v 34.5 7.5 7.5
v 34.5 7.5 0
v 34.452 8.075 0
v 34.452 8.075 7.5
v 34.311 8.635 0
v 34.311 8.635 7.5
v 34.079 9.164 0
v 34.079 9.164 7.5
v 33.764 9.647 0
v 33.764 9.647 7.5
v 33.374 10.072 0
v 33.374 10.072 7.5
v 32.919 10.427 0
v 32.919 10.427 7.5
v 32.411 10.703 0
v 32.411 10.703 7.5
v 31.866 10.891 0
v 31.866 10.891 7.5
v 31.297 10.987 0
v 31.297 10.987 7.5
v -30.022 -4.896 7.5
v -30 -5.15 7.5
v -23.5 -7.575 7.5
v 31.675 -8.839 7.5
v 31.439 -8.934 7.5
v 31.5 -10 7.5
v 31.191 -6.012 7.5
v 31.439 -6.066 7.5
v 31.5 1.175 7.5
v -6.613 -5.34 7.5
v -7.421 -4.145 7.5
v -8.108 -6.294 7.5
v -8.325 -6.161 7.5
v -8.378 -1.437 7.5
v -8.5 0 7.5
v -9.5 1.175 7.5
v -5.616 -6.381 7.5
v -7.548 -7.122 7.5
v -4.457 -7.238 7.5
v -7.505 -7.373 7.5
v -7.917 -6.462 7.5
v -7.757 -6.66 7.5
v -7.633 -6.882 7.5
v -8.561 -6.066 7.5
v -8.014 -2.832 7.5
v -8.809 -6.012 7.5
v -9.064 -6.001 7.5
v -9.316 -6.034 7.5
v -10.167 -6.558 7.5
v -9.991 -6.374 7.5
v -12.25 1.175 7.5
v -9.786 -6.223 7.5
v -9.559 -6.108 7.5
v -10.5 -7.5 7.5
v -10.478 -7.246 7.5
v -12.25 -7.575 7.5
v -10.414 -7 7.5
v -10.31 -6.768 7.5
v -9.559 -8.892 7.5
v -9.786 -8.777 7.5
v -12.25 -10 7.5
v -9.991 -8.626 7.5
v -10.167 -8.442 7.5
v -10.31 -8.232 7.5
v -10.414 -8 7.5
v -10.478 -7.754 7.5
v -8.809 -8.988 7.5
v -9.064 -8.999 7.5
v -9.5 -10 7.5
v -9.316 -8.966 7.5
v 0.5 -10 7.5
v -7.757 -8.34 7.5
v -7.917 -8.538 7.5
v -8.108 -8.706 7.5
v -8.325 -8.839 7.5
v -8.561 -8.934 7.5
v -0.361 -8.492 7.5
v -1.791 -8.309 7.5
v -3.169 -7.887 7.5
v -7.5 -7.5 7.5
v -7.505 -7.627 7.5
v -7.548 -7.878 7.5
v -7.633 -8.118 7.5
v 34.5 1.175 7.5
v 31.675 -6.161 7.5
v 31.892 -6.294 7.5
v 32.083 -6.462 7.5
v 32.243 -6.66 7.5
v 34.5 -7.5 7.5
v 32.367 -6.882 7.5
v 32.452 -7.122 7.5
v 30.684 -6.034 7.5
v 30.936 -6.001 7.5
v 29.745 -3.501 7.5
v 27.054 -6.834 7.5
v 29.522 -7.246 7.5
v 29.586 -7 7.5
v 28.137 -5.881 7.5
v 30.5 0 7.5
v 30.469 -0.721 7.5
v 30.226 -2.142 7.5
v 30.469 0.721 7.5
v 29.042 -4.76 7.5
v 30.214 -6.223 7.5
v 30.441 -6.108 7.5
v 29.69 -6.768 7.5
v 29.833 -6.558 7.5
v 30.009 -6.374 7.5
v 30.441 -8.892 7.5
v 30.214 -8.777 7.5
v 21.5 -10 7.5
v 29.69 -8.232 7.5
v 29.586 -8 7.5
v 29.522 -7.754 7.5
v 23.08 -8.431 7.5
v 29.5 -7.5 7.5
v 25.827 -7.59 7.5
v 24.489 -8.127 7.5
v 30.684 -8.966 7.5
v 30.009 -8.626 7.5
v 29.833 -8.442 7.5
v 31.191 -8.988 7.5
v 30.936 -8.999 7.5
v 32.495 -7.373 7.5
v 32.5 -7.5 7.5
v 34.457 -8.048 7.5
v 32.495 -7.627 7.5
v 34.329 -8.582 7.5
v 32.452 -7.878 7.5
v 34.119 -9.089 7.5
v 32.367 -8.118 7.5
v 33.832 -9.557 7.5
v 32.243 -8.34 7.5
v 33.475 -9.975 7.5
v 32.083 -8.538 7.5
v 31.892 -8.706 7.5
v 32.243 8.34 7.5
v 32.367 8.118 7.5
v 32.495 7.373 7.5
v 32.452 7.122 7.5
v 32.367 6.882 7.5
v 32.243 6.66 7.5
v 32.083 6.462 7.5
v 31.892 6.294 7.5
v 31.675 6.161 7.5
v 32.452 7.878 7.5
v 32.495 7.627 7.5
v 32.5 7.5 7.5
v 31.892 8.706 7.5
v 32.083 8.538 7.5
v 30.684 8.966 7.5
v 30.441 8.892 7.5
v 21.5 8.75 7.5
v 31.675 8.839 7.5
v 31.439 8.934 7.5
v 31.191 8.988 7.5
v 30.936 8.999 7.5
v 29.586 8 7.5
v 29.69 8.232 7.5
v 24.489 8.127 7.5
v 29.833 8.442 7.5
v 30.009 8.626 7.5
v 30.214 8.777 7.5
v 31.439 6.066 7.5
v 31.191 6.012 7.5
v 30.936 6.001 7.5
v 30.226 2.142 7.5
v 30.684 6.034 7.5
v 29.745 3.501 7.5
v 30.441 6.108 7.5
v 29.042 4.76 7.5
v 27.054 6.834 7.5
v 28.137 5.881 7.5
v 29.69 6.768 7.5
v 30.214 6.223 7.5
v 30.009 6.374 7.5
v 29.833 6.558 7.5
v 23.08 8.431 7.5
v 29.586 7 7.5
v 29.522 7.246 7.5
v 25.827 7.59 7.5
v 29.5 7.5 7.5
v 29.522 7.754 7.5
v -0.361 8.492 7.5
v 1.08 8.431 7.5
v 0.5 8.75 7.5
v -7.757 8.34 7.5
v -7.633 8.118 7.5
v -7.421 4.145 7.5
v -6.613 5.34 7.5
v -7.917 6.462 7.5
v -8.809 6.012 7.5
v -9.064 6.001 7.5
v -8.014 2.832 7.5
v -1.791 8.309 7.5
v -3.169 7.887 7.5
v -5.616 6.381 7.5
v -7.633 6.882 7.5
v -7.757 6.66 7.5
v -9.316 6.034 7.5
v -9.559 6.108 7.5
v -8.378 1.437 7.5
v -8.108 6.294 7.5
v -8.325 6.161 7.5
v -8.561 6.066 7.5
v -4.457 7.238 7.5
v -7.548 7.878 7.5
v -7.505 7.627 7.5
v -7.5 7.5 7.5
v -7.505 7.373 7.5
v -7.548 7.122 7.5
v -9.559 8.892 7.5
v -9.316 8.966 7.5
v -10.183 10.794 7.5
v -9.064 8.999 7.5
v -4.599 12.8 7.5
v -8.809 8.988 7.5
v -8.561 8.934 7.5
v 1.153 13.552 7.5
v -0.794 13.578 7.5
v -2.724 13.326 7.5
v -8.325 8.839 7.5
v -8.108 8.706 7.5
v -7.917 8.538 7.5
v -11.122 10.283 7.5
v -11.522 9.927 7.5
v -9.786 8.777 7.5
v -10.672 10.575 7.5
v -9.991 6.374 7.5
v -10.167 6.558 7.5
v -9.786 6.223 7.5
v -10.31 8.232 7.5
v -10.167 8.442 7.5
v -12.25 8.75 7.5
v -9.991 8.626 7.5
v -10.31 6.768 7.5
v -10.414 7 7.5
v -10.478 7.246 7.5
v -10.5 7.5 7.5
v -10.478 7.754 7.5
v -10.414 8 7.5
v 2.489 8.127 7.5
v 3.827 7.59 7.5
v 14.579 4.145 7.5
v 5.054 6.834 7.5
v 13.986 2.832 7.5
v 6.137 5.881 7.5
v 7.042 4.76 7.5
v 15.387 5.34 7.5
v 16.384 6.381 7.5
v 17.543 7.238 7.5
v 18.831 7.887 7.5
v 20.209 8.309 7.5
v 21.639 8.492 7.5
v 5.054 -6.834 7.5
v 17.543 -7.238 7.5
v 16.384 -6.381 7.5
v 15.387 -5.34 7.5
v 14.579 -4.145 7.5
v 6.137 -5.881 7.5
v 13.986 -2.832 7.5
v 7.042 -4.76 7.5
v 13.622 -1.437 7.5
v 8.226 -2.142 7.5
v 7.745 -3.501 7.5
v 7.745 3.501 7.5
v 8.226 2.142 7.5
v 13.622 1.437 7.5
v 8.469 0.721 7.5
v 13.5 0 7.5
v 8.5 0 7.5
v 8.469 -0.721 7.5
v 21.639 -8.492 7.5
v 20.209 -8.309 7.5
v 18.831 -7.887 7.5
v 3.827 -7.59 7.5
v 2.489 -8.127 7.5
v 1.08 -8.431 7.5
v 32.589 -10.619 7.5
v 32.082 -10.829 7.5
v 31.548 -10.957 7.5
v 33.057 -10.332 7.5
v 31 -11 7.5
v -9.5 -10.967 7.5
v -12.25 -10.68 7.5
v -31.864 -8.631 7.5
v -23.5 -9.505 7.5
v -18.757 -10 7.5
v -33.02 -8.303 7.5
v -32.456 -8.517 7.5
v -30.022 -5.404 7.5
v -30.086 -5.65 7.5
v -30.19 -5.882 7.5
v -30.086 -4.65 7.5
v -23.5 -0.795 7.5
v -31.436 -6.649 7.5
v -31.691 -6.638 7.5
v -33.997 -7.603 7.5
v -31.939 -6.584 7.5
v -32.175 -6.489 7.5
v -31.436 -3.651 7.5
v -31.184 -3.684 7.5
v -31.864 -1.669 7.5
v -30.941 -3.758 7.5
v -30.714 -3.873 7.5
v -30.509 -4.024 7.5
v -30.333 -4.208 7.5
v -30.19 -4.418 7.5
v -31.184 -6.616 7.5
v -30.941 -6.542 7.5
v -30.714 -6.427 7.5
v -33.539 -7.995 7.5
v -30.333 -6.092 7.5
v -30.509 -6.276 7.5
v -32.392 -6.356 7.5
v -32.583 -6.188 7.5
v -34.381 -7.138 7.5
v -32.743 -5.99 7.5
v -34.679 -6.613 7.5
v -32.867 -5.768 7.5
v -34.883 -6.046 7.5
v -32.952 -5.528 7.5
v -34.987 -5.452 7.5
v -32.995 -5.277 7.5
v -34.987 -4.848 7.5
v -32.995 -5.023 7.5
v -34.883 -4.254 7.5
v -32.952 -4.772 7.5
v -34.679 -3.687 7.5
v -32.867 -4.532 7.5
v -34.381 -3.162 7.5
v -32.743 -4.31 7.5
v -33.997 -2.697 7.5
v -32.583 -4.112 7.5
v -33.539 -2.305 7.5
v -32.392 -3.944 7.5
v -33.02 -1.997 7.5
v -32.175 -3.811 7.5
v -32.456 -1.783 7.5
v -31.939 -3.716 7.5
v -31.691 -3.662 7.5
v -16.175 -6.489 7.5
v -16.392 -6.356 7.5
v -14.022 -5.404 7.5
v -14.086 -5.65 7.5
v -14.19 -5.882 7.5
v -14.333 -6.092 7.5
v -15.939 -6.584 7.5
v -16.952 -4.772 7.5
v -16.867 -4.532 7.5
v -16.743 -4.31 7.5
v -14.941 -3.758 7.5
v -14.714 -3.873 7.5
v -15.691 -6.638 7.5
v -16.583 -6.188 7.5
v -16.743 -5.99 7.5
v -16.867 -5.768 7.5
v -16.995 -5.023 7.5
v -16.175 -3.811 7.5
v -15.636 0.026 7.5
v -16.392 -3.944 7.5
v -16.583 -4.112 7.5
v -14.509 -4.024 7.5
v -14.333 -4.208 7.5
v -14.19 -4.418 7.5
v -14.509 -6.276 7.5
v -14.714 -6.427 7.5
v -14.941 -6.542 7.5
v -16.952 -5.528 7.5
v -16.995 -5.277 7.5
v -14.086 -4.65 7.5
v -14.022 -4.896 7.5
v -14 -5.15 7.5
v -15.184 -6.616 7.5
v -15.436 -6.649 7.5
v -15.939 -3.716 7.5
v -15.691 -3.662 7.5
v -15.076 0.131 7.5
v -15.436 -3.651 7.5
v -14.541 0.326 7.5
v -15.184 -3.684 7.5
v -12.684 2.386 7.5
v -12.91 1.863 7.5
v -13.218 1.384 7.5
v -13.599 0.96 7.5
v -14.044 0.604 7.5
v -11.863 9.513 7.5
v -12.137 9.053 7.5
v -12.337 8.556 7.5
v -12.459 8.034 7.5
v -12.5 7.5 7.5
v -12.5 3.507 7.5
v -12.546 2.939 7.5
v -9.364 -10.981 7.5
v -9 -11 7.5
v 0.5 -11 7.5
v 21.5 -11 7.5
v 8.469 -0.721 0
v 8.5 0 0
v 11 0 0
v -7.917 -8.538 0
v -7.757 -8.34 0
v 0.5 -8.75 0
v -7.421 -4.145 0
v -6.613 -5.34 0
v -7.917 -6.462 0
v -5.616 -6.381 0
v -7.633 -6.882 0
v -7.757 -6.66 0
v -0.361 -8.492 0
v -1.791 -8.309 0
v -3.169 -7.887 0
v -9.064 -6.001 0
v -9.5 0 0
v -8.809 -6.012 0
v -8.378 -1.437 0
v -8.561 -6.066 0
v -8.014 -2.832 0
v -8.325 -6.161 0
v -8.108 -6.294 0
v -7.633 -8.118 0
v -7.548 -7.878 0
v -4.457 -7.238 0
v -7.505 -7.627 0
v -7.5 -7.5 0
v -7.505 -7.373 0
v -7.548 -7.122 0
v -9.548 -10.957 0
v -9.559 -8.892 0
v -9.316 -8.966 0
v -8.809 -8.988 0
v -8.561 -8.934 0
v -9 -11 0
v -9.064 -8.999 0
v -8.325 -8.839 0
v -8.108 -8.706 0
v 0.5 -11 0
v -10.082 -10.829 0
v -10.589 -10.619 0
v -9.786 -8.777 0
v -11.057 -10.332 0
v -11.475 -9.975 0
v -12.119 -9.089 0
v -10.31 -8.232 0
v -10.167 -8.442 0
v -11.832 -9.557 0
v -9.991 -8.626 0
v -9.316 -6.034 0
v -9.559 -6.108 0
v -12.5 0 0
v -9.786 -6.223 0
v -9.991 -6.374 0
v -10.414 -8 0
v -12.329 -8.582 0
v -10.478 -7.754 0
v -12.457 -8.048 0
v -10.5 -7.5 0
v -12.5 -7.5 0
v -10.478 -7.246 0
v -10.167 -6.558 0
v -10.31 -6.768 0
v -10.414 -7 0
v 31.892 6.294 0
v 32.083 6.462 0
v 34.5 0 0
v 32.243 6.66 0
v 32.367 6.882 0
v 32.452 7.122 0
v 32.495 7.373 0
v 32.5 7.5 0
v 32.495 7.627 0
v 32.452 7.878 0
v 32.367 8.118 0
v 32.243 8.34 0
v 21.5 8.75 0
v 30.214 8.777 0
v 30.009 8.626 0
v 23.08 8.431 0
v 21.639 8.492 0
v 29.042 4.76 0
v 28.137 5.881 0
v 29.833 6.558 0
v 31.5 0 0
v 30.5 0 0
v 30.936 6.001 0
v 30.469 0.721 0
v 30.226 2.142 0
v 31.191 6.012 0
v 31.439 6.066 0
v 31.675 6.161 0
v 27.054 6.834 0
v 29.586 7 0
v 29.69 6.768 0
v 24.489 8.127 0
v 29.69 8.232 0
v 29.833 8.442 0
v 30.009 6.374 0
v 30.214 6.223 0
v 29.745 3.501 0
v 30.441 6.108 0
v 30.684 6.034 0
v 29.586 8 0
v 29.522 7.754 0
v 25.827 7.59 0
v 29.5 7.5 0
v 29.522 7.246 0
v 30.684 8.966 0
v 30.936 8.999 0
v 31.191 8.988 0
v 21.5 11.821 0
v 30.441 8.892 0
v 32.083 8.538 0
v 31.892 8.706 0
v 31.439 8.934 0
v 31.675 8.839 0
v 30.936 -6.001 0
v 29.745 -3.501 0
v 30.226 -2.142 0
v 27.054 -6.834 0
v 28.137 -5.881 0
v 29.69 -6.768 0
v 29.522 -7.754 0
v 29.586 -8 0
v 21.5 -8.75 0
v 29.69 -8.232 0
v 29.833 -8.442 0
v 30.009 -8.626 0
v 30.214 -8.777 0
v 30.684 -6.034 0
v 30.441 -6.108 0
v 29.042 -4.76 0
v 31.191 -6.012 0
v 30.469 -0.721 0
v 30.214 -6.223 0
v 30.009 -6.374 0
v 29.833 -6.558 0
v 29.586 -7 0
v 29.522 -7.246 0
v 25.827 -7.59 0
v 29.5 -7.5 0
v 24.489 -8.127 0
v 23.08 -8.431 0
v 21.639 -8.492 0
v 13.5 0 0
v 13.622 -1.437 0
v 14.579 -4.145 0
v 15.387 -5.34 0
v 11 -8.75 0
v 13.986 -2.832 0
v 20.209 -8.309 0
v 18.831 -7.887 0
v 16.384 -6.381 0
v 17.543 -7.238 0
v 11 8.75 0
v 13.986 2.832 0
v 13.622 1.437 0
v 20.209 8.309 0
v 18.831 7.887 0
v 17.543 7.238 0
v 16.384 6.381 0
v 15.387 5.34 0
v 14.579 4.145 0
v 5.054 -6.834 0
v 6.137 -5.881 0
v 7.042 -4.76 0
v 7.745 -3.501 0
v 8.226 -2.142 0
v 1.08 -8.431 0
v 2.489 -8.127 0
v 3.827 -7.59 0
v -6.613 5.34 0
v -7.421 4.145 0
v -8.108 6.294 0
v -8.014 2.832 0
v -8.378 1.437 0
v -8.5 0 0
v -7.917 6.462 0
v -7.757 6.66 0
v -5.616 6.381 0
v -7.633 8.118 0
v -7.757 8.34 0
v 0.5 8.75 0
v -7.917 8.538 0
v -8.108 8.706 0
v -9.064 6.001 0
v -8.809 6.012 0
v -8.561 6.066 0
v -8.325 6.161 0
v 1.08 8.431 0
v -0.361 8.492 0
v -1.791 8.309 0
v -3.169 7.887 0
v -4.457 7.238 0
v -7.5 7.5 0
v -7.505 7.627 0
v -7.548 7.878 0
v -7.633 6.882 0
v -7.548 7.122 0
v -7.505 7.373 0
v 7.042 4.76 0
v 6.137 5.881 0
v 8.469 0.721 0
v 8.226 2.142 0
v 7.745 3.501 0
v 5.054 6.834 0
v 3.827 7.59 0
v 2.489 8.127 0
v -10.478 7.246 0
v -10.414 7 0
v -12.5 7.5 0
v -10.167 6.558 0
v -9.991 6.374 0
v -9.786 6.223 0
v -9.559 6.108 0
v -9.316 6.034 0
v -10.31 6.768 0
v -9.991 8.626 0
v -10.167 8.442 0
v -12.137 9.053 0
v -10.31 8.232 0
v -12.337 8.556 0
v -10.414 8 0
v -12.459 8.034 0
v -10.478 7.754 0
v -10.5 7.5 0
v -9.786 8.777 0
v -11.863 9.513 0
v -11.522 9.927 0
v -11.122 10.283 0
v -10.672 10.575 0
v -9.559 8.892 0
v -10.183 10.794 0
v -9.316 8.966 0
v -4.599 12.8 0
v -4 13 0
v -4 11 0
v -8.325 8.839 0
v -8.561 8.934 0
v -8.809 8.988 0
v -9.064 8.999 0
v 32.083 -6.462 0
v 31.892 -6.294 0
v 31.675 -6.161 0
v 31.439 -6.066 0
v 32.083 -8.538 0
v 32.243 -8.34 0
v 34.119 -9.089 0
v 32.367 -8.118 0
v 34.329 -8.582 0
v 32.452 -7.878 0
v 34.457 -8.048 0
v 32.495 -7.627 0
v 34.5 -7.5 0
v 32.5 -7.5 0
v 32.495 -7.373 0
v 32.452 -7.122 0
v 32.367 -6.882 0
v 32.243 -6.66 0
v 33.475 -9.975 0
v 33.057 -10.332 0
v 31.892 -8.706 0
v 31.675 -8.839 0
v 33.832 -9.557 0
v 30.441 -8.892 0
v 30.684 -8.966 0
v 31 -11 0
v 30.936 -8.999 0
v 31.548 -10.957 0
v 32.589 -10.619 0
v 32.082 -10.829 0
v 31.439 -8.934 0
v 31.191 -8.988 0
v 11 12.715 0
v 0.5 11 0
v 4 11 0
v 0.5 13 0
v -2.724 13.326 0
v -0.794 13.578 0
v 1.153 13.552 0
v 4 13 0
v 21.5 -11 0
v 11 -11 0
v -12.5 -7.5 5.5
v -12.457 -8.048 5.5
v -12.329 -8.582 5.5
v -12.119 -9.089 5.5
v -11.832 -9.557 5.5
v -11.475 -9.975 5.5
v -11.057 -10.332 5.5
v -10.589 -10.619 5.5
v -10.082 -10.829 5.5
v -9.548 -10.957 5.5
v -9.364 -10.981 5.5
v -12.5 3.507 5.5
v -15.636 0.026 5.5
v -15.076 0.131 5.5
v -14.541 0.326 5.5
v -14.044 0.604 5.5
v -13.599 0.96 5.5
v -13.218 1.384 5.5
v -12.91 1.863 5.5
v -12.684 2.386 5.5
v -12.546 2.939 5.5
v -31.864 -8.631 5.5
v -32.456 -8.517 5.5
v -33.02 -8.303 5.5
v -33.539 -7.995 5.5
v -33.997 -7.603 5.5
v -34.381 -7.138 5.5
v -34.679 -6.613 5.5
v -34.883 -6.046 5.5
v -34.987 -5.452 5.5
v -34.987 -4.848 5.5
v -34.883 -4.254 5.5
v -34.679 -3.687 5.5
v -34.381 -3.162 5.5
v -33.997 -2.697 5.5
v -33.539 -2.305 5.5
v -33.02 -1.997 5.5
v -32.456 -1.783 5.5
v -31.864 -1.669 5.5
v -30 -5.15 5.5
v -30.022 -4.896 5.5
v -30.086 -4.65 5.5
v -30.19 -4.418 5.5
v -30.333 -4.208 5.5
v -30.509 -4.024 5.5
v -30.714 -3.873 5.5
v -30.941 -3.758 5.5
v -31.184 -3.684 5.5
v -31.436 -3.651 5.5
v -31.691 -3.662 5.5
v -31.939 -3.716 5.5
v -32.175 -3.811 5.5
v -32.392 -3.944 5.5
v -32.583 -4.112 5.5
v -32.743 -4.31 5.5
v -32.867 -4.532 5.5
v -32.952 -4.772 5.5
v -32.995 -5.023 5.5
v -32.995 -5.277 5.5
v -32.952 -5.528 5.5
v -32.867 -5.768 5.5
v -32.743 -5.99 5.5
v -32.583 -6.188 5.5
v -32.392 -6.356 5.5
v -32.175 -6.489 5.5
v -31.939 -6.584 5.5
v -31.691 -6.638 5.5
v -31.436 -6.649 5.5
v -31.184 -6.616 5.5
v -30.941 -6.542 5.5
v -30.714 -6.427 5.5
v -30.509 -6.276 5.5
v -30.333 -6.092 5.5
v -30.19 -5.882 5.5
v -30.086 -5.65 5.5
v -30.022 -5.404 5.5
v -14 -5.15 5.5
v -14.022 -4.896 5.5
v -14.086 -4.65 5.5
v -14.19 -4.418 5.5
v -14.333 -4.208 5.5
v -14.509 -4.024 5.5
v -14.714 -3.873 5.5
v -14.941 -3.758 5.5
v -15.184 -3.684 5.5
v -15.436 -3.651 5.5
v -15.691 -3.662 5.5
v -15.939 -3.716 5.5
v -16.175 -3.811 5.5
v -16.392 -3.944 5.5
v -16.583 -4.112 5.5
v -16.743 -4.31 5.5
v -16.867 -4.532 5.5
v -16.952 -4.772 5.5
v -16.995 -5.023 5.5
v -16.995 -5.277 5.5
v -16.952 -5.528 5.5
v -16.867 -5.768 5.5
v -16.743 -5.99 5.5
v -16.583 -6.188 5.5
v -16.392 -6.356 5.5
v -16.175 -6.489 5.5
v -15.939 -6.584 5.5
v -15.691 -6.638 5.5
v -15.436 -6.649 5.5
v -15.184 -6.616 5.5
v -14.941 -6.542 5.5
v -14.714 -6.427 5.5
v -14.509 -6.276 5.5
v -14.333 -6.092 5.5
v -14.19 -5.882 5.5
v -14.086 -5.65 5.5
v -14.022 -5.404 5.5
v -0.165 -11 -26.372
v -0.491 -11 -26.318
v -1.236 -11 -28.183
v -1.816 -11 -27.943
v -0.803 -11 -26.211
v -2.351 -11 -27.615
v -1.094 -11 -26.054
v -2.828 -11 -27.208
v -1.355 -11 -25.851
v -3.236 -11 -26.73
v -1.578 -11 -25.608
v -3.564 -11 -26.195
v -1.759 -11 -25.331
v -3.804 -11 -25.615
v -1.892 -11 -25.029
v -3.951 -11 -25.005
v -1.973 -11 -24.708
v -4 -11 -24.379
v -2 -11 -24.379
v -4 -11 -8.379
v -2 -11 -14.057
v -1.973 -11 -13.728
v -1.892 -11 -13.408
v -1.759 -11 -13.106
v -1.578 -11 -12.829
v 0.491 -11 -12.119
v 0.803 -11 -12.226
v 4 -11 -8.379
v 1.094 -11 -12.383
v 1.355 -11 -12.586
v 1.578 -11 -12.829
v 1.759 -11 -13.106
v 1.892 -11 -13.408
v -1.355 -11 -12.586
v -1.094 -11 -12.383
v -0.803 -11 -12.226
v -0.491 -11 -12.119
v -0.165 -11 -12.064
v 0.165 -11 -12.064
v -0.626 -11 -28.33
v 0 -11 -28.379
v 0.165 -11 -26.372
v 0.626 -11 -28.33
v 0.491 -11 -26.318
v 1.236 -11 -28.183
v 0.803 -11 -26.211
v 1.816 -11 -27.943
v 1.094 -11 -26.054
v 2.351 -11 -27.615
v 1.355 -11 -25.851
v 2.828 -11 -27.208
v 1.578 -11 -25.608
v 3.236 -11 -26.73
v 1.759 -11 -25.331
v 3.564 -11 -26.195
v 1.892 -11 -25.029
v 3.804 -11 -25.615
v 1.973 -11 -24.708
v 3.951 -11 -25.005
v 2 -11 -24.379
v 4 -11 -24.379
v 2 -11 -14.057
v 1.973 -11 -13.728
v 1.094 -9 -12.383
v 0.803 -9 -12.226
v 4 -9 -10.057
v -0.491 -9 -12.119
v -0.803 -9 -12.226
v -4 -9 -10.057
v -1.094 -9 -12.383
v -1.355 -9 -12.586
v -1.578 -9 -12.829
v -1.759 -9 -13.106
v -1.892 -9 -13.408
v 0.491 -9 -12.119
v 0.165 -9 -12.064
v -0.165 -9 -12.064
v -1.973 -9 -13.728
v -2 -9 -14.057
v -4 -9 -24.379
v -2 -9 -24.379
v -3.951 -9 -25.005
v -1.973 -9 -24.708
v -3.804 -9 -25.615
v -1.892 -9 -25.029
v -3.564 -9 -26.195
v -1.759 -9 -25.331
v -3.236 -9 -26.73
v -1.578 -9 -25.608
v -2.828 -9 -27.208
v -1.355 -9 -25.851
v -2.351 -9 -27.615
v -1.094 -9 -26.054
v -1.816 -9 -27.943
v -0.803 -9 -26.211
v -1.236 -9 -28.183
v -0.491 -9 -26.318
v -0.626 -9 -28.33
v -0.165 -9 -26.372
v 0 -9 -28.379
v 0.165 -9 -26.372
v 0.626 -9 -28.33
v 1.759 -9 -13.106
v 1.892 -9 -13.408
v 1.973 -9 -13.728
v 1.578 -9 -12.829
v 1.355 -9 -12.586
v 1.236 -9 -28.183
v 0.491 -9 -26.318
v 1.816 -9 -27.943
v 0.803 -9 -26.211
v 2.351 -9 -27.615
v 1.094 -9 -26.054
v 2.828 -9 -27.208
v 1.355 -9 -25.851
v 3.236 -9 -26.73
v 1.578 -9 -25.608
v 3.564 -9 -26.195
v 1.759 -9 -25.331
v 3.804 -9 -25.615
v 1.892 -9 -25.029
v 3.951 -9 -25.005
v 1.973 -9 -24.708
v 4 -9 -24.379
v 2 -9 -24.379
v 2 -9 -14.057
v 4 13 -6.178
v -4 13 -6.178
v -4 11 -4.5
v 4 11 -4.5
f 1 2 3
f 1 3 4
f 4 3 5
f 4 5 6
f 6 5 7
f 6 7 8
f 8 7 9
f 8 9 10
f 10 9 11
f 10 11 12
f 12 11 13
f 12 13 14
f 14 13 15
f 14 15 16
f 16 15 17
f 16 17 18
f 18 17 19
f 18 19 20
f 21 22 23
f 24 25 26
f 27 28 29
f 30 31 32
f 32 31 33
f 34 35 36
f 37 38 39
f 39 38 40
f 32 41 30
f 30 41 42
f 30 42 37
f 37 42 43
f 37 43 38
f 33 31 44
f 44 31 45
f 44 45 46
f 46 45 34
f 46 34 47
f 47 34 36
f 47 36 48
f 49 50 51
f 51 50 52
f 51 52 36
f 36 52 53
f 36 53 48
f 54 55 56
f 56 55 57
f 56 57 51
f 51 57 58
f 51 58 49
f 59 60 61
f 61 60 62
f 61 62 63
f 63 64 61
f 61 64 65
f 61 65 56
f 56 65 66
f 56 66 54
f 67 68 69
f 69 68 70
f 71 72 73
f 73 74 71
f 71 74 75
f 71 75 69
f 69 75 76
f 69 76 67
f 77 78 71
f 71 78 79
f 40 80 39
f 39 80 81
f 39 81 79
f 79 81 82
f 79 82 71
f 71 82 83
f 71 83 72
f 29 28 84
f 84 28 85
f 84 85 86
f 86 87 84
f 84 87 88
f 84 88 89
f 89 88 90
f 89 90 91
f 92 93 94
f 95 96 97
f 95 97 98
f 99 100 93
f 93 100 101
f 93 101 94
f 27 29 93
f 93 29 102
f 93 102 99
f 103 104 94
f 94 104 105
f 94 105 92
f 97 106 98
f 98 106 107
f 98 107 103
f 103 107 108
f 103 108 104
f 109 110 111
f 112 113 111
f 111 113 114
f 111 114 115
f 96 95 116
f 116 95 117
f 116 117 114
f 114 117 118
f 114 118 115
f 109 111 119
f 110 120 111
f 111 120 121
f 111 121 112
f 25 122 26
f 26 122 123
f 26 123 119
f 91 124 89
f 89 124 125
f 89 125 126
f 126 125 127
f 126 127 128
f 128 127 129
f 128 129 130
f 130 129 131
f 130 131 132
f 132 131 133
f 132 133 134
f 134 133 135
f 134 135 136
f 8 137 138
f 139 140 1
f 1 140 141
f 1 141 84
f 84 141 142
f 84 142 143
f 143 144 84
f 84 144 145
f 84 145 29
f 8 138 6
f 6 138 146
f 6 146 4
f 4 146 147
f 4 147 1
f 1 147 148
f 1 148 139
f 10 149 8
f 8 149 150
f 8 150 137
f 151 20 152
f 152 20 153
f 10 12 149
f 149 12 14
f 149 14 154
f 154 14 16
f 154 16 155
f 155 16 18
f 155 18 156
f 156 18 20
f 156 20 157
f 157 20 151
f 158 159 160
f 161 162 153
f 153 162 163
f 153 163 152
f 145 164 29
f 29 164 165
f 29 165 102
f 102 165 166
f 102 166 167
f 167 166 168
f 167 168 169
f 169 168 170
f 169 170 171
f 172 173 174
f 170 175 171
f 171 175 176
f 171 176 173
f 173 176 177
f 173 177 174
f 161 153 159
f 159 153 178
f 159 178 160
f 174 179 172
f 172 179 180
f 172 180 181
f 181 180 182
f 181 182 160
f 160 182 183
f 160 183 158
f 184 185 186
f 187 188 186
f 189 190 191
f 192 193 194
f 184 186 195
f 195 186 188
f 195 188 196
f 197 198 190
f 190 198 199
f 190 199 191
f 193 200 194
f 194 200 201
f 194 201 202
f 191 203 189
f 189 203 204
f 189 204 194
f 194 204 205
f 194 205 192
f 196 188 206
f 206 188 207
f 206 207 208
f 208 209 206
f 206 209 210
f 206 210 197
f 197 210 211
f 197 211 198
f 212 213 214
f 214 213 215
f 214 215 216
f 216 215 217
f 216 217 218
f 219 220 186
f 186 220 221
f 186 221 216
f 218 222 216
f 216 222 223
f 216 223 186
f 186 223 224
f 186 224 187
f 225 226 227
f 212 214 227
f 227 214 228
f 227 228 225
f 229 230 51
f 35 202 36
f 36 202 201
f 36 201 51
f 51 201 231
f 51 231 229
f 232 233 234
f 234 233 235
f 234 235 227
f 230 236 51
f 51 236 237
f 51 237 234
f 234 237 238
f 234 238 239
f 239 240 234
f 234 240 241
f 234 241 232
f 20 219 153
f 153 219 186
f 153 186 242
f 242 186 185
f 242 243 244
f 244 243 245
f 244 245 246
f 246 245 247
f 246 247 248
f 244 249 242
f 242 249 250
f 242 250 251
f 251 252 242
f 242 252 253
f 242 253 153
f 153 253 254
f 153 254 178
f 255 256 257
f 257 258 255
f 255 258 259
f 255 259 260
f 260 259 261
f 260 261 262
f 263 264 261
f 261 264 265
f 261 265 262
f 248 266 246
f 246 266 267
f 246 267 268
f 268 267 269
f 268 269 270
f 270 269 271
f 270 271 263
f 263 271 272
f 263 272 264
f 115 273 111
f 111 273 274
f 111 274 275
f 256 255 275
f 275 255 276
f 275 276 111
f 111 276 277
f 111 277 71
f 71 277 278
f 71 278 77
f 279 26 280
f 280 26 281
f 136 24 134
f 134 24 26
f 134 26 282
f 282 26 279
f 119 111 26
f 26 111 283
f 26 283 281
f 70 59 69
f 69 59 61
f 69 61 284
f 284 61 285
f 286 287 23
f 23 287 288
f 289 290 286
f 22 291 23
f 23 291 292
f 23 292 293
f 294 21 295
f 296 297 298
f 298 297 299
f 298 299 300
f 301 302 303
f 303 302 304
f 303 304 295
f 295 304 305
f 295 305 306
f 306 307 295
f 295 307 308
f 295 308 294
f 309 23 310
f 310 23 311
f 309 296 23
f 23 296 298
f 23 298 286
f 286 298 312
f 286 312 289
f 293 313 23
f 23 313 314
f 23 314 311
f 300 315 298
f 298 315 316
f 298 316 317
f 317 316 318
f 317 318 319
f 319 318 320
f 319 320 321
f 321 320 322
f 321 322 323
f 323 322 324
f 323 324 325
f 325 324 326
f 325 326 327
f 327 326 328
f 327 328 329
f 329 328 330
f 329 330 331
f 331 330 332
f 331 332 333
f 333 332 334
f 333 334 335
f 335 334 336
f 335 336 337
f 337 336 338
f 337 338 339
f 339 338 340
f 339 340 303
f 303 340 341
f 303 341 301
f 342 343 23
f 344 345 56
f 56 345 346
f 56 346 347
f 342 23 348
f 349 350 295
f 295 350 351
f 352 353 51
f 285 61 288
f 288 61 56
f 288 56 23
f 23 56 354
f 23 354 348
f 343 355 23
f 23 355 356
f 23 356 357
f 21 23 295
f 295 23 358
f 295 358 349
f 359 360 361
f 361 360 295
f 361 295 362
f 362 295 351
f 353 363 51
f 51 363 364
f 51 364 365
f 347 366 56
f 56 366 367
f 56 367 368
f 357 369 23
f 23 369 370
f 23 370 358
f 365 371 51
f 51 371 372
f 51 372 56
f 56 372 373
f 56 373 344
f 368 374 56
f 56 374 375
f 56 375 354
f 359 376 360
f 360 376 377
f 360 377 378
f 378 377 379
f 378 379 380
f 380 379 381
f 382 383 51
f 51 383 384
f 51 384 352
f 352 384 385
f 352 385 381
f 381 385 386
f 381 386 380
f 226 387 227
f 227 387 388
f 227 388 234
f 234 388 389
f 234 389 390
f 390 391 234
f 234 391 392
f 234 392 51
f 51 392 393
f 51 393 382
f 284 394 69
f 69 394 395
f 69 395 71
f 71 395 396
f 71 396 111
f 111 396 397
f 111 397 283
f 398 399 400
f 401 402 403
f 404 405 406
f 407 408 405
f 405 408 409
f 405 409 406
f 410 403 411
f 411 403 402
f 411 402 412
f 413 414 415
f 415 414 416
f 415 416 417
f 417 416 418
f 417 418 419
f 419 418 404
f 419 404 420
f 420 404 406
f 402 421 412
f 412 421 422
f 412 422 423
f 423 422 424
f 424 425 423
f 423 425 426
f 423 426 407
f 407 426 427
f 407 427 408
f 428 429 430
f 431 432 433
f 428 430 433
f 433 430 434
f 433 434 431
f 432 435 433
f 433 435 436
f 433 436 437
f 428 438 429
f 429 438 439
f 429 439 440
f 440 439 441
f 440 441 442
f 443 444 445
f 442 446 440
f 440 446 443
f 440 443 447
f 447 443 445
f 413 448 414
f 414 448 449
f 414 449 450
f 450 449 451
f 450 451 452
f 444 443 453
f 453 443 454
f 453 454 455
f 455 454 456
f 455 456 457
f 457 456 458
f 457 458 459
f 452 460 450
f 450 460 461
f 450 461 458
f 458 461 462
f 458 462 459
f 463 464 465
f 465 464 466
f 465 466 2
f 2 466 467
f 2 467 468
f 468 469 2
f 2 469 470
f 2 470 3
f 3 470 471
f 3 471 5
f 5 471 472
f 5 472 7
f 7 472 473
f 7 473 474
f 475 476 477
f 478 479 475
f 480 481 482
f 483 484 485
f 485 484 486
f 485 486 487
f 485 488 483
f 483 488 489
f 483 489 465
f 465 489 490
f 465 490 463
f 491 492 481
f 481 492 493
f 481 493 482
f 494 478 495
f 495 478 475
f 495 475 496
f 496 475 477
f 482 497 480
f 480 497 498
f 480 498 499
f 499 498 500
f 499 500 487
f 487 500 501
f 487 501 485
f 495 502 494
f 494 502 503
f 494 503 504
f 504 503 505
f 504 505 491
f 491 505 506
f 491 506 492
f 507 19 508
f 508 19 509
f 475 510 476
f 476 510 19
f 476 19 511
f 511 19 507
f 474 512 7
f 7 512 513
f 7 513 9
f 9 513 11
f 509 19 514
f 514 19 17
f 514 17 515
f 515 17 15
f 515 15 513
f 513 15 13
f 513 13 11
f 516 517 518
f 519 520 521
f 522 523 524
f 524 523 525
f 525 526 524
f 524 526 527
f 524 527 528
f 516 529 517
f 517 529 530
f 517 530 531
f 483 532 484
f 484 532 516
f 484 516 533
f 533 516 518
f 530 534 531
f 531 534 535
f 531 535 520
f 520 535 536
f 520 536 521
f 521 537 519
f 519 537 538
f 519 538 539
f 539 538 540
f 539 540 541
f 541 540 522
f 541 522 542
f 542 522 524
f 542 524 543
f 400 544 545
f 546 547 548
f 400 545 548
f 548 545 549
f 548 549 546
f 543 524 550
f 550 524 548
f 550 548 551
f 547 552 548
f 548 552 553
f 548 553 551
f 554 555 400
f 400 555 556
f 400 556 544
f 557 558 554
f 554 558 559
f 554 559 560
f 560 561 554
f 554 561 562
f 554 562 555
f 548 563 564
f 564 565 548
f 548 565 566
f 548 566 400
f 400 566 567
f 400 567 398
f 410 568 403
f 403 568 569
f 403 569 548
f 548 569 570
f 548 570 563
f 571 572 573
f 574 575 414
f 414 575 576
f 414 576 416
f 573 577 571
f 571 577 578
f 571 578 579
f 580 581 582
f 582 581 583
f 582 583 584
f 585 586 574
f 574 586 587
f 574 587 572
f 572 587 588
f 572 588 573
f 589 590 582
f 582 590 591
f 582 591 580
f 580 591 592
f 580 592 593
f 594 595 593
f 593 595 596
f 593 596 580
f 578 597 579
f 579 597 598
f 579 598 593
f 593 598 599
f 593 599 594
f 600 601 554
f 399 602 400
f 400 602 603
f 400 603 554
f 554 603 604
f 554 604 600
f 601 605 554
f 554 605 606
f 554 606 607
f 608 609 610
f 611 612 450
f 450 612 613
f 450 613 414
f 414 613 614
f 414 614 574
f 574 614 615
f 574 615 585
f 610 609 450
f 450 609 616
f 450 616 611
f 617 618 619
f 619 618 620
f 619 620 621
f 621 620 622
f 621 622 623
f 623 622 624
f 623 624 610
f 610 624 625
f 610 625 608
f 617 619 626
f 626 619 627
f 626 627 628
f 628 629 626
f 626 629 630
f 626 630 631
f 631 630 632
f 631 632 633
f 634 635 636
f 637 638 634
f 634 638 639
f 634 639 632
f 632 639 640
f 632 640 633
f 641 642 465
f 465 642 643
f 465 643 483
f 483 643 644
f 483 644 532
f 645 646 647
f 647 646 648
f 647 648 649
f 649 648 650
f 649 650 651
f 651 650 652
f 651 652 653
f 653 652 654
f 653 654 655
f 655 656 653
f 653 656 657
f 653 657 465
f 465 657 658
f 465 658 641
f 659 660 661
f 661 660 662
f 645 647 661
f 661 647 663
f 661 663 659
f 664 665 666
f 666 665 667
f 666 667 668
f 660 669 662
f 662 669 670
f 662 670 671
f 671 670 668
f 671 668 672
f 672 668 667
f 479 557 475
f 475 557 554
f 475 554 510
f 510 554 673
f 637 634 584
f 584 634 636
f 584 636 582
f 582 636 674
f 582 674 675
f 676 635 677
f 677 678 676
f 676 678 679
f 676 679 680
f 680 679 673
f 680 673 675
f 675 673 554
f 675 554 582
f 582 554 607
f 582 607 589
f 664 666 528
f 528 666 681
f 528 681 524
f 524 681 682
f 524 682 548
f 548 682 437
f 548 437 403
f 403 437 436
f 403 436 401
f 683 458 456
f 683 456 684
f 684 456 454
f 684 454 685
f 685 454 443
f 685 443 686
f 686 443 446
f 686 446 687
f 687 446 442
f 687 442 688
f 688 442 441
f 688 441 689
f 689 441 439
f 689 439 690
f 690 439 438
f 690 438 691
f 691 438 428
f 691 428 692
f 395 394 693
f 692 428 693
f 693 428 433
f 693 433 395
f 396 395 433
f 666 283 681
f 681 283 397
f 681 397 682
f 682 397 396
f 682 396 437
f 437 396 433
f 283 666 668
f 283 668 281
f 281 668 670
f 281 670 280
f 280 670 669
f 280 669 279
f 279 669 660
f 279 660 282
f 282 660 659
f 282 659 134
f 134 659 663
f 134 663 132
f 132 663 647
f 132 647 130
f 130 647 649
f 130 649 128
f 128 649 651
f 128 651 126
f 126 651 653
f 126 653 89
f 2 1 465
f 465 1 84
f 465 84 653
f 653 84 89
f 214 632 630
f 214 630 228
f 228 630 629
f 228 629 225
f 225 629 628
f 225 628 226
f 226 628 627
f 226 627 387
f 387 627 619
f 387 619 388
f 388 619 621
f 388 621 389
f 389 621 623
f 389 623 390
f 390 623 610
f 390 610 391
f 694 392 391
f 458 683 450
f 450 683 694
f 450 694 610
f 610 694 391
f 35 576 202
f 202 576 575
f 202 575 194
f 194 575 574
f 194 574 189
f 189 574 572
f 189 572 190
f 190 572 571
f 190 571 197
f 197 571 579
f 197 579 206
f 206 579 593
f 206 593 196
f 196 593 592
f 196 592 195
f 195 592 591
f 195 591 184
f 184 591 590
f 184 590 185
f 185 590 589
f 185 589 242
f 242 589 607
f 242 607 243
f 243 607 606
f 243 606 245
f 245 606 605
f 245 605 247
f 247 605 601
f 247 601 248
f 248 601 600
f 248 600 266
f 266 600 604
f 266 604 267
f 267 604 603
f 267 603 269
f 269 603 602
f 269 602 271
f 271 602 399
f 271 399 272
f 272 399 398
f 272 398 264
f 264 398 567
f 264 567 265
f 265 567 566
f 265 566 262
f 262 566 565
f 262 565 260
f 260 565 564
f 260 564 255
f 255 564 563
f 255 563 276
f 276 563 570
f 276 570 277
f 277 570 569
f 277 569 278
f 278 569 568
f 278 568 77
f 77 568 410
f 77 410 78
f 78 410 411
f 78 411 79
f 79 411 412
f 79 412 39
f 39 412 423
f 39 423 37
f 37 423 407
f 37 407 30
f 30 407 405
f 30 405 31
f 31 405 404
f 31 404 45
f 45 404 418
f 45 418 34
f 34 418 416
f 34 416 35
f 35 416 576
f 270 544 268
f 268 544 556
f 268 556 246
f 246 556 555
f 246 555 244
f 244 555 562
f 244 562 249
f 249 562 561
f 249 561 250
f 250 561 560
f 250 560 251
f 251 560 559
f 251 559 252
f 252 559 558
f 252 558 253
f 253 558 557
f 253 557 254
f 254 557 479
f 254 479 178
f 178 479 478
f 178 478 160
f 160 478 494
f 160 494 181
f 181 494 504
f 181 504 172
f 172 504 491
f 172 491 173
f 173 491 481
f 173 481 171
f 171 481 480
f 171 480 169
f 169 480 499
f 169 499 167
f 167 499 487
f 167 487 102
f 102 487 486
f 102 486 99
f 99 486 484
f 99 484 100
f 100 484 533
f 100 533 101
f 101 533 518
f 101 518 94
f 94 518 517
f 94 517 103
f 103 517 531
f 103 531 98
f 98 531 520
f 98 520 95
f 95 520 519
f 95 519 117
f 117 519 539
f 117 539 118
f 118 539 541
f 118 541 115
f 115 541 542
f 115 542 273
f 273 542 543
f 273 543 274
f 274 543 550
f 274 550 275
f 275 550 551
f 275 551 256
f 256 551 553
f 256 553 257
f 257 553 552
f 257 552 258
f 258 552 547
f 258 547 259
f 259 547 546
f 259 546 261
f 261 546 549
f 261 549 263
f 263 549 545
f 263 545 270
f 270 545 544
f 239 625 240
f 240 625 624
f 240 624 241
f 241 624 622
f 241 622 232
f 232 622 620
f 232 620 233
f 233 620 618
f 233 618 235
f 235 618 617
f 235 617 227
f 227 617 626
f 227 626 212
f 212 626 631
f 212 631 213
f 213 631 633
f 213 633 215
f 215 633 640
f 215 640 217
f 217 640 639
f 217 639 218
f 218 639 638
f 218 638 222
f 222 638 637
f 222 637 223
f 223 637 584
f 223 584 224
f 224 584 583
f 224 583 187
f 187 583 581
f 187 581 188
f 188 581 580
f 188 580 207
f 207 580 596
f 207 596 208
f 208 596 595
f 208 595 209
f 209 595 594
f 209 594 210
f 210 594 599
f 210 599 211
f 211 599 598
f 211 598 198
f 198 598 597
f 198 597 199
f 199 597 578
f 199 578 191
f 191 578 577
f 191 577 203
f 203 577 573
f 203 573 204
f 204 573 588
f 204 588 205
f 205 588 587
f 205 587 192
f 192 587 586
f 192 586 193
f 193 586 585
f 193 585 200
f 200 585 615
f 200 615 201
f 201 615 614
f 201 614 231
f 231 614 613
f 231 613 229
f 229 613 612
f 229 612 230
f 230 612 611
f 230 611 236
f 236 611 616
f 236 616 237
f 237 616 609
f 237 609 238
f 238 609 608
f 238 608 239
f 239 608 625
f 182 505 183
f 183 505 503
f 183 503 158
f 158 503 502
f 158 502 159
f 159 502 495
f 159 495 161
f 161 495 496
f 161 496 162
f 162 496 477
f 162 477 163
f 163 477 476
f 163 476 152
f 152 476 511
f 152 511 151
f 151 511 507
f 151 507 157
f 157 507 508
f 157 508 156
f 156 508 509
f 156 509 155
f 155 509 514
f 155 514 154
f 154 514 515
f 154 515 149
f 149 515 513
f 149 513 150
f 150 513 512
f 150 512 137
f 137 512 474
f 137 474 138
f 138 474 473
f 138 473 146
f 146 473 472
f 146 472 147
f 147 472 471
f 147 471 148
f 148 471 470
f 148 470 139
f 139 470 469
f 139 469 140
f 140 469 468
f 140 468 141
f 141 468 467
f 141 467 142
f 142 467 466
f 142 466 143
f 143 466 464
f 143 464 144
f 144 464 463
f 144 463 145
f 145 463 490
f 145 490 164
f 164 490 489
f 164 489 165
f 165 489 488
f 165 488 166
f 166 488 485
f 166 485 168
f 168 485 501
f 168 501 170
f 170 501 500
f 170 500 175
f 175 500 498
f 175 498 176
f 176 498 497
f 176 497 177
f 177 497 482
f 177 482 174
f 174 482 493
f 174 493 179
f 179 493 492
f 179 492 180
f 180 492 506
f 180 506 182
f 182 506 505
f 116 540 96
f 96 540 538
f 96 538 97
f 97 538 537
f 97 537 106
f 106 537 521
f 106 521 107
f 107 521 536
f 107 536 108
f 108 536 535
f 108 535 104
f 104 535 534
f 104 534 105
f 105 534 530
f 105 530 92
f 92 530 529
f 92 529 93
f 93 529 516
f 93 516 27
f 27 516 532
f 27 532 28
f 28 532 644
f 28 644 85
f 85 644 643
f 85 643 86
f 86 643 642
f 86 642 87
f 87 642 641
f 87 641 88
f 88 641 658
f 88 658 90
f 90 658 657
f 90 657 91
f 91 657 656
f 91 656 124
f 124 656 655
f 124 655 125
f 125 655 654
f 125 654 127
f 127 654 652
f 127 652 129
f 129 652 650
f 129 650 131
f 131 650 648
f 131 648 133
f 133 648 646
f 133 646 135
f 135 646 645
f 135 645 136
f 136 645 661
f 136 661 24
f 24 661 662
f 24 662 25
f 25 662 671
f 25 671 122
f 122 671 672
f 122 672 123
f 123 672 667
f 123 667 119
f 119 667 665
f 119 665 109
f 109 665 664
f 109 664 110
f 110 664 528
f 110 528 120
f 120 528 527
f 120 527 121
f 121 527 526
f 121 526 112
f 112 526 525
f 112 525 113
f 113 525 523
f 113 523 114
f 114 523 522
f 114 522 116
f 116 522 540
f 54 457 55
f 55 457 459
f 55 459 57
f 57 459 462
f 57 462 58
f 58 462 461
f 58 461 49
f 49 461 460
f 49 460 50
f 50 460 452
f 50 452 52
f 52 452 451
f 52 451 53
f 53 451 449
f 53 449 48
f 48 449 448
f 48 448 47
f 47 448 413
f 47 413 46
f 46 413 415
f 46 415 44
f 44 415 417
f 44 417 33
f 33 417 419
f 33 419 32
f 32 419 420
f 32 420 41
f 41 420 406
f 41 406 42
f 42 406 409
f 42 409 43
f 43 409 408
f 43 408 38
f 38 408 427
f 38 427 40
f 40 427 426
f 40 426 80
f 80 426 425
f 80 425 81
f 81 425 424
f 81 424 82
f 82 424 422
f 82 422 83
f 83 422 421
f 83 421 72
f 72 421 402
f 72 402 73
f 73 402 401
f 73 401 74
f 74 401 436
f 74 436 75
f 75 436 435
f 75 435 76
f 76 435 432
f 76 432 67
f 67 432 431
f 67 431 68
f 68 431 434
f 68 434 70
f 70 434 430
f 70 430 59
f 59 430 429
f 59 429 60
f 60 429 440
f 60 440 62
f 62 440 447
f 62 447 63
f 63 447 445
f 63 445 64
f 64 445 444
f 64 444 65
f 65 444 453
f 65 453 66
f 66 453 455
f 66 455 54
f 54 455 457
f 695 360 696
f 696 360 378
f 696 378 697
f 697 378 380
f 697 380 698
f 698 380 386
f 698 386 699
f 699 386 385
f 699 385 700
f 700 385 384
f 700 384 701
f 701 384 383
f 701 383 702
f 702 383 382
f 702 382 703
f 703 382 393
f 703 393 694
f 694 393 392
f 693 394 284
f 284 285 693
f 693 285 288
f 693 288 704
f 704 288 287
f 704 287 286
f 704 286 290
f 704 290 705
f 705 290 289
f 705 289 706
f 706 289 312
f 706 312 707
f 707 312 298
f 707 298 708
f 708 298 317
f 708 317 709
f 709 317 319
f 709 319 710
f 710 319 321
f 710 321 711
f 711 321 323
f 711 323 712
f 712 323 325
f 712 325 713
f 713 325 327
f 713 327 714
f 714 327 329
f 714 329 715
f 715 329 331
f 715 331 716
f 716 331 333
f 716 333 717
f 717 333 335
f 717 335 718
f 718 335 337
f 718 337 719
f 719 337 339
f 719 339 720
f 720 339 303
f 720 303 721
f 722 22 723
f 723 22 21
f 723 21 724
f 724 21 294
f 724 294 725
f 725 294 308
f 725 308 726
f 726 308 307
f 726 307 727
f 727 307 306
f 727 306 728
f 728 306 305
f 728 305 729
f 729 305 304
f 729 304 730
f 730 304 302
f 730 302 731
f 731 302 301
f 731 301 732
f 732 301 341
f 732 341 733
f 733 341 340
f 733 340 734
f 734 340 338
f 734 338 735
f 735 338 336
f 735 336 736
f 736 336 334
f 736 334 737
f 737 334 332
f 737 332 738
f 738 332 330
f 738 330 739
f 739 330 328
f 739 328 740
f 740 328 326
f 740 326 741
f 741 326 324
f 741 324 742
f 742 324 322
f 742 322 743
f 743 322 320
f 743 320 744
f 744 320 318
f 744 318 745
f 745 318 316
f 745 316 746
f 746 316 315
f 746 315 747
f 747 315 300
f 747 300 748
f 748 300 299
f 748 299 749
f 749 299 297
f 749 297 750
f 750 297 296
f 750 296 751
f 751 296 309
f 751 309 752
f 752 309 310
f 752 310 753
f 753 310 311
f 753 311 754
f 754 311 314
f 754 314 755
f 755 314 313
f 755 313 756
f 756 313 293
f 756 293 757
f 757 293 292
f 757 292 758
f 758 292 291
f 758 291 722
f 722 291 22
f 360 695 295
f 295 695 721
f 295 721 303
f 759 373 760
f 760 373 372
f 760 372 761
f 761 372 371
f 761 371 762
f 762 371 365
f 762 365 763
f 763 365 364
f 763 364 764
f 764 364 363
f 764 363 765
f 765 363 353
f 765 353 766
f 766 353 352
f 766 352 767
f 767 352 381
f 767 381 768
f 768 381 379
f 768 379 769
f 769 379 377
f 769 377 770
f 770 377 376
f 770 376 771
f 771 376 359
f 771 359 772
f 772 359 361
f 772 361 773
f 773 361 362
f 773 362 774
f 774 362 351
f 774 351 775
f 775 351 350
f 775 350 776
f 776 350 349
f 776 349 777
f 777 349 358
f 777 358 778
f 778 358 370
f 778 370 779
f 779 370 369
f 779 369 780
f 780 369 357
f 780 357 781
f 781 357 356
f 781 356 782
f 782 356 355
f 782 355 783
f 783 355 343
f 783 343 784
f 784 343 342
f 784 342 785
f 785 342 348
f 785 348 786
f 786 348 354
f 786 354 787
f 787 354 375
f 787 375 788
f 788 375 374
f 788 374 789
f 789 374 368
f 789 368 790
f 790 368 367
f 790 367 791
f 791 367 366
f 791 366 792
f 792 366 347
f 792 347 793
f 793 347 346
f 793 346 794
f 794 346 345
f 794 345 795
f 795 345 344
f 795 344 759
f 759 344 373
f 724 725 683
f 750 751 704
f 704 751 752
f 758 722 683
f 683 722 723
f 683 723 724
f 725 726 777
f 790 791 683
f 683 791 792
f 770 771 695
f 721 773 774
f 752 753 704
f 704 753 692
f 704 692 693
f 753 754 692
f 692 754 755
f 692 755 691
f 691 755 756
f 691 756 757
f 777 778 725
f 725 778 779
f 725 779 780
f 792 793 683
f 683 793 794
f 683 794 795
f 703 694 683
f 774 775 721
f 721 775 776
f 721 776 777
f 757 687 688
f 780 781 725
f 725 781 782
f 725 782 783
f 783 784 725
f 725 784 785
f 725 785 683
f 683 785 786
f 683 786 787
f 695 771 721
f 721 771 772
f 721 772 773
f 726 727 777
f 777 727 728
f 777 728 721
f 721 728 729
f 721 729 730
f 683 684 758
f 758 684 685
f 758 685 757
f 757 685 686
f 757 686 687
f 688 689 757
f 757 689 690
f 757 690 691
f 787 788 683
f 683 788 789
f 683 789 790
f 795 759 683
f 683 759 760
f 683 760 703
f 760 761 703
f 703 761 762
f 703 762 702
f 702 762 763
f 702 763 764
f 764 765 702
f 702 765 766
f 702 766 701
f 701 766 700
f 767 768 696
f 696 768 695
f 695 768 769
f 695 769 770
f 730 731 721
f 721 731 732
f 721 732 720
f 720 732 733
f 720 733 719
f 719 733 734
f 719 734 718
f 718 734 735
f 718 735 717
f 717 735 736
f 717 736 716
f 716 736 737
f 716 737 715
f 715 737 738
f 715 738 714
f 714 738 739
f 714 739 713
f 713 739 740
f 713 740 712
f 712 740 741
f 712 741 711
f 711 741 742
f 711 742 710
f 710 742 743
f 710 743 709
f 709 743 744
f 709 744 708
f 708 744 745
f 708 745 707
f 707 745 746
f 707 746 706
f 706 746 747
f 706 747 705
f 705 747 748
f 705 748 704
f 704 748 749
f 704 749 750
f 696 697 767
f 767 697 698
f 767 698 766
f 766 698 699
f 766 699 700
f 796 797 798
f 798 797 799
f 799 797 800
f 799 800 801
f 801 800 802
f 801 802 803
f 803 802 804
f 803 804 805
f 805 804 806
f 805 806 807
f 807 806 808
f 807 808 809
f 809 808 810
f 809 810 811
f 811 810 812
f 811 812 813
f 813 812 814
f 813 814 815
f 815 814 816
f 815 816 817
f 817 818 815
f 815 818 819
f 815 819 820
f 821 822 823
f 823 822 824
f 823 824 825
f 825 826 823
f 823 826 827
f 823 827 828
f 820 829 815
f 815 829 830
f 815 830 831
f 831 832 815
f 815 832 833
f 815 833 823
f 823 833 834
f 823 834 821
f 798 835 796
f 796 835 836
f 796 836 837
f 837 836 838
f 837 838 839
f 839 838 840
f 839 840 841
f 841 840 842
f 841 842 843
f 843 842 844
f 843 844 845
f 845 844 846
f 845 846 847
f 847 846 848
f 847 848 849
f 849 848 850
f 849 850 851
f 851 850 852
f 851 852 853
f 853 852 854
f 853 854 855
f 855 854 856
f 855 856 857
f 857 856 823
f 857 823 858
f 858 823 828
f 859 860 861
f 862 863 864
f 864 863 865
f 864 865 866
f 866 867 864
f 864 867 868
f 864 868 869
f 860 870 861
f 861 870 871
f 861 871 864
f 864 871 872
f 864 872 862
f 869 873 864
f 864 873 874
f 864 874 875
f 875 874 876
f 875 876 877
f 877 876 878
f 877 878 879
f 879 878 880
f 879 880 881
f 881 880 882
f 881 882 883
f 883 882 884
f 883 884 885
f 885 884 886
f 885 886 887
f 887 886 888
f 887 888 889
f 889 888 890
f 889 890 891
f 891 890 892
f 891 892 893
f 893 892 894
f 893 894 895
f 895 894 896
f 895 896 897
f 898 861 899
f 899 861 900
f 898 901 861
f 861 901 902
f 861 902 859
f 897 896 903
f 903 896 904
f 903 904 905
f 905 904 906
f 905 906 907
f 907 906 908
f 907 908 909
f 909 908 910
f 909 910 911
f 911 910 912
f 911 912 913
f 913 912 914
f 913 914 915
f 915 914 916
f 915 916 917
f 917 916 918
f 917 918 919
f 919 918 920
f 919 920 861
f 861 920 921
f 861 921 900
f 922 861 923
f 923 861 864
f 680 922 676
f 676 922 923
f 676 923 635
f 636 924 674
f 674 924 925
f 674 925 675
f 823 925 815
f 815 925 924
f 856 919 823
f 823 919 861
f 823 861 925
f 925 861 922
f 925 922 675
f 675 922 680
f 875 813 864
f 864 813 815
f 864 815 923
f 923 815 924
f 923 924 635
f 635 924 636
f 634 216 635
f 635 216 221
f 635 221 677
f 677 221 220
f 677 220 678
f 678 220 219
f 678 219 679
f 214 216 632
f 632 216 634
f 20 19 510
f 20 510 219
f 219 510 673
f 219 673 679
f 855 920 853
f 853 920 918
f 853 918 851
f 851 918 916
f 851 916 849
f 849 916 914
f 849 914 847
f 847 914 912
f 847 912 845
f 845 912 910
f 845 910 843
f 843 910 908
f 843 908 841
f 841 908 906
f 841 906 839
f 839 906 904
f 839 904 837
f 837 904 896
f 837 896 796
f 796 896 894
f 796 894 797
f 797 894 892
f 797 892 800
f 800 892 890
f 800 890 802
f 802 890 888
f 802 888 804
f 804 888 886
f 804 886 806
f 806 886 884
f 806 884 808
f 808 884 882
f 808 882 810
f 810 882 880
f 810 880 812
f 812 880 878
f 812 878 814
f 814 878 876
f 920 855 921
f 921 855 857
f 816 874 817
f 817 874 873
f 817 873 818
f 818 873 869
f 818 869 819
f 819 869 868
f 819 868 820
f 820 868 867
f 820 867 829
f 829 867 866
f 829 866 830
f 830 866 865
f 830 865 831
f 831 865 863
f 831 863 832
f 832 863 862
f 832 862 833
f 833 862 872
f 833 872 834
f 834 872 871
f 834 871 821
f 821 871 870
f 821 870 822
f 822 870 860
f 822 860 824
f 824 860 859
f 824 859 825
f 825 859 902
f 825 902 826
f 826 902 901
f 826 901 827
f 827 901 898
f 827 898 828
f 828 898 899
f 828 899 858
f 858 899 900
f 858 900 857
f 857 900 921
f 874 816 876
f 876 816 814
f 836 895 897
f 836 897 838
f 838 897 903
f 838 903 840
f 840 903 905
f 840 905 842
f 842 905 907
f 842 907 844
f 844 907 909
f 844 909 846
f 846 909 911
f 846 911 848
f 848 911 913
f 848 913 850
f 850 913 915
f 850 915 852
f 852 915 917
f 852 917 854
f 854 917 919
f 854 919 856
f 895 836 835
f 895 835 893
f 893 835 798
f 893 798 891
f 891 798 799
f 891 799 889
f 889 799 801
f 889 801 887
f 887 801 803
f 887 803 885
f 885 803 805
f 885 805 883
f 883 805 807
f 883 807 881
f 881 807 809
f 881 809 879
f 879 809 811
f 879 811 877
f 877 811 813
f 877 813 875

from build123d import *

# Parameters (mm, degrees)
SKETCH1_R           = 8.5
SKETCH1_R_2         = 1.5
BOSS_EXTRUDE1_DEPTH = 7.5
BOSS_EXTRUDE2_START = -2
SKETCH2_R           = 1.5
BOSS_EXTRUDE2_DEPTH = 2
EXTRUDE_THIN1_DEPTH = 4
BOSS_EXTRUDE3_START = -7.5
BOSS_EXTRUDE3_DEPTH = 7.5
CUT_EXTRUDE1_DEPTH  = 10
FILLET1_R           = 4


with BuildPart() as part:
    # Sketch1 → Boss-Extrude1 (new body)
    with BuildSketch(Plane.XY):
        with BuildLine():
            Line((-12.5, -7.5), (-12.5, 7.5))
            ThreePointArc((-12.5, 7.5), (-11.474873734, 9.974873734), (-9, 11))
            Line((-9, 11), (31, 11))
            ThreePointArc((31, 11), (33.474873734, 9.974873734), (34.5, 7.5))
            Line((34.5, 7.5), (34.5, -7.5))
            ThreePointArc((34.5, -7.5), (33.474873734, -9.974873734), (31, -11))
            Line((31, -11), (-9, -11))
            ThreePointArc((-9, -11), (-11.474873734, -9.974873734), (-12.5, -7.5))
        make_face()
        Circle(SKETCH1_R, mode=Mode.SUBTRACT)
        with Locations((22, 0)):
            Circle(SKETCH1_R, mode=Mode.SUBTRACT)
        with Locations((-9, 7.5)):
            Circle(SKETCH1_R_2, mode=Mode.SUBTRACT)
        with Locations((31, 7.5)):
            Circle(SKETCH1_R_2, mode=Mode.SUBTRACT)
        with Locations((31, -7.5)):
            Circle(SKETCH1_R_2, mode=Mode.SUBTRACT)
        with Locations((-9, -7.5)):
            Circle(SKETCH1_R_2, mode=Mode.SUBTRACT)
    extrude(amount=BOSS_EXTRUDE1_DEPTH)

    # Sketch2 → Boss-Extrude2 (add)
    with BuildSketch(Plane.XY.offset(7.5).offset(BOSS_EXTRUDE2_START)):
        with BuildLine():
            ThreePointArc((-12.5, 3.506965576), (-13.399757461, 1.164159836), (-15.636422136, 0.025900921))
            Line((-15.636422136, 0.025900921), (-31.863577864, -1.668935344))
            ThreePointArc((-31.863577864, -1.668935344), (-35, -5.15), (-31.863577864, -8.631064656))
            Line((-31.863577864, -8.631064656), (-9.363577864, -10.981064656))
            ThreePointArc((-9.363577864, -10.981064656), (-11.600242539, -9.842805741), (-12.5, -7.5))
            Line((-12.5, -7.5), (-12.5, 3.506965576))
        make_face()
        with Locations((-31.5, -5.15)):
            Circle(SKETCH2_R, mode=Mode.SUBTRACT)
        with Locations((-15.5, -5.15)):
            Circle(SKETCH2_R, mode=Mode.SUBTRACT)
    extrude(amount=BOSS_EXTRUDE2_DEPTH)

    # Sketch3 → Extrude-Thin1 (add, symmetric)
    with BuildSketch(Plane(origin=(0, 0, 0), x_dir=(0, 0, -1), z_dir=(1, 0, 0))):
        Polygon((-7.5, 11), (4.5, 11), (8.379193576, -11), (28.379193576, -11), (28.379193576, -9), (10.057392838, -9), (6.178199262, 13), (-7.5, 13), align=None)
    extrude(amount=EXTRUDE_THIN1_DEPTH, both=True)

    # Sketch4 → Boss-Extrude3 (add)
    with BuildSketch(Plane.XY.offset(7.5).offset(BOSS_EXTRUDE3_START)):
        with BuildLine():
            Line((-4.599183693, 12.800293331), (-10.183485485, 10.793836988))
            ThreePointArc((-10.183485485, 10.793836988), (-9.600654035, 10.948074061), (-9, 11))
            Line((-9, 11), (-4, 11))
            Line((-4, 11), (-4, 13))
            ThreePointArc((-4, 13), (-4.300751183, 12.903625044), (-4.599183693, 12.800293331))
        make_face()
        with BuildLine():
            ThreePointArc((1.153263837, 13.552489901), (-1.449926884, 13.523968058), (-4, 13))
            Line((-4, 13), (4, 13))
            Line((4, 13), (4, 11))
            Line((4, 11), (31, 11))
            ThreePointArc((31, 11), (31.148515642, 10.996847595), (31.296763753, 10.987396059))
            Line((31.296763753, 10.987396059), (1.153263837, 13.552489901))
        make_face()
    extrude(amount=BOSS_EXTRUDE3_DEPTH)

    # Sketch5 → Cut-Extrude1 (cut)
    with BuildSketch(Plane(origin=(0, -9, 0), x_dir=(1, 0, 0), z_dir=(0, 1, 0))):
        with BuildLine():
            Line((2, 24.379193576), (2, 14.057392838))
            ThreePointArc((2, 14.057392838), (0, 12.057392838), (-2, 14.057392838))
            Line((-2, 14.057392838), (-2, 24.379193576))
            ThreePointArc((-2, 24.379193576), (0, 26.379193576), (2, 24.379193576))
        make_face()
    extrude(amount=-CUT_EXTRUDE1_DEPTH, mode=Mode.SUBTRACT)

    # Fillet1
    fillet1_edges = [part.edges().sort_by_distance(p)[0] for p in [
        (-4, -10, -28.379193576),
        (4, -10, -28.379193576),
    ]]
    fillet(fillet1_edges, radius=FILLET1_R - 0.0001)  # a hair under: the kernel refuses the full size


solid = part.part
